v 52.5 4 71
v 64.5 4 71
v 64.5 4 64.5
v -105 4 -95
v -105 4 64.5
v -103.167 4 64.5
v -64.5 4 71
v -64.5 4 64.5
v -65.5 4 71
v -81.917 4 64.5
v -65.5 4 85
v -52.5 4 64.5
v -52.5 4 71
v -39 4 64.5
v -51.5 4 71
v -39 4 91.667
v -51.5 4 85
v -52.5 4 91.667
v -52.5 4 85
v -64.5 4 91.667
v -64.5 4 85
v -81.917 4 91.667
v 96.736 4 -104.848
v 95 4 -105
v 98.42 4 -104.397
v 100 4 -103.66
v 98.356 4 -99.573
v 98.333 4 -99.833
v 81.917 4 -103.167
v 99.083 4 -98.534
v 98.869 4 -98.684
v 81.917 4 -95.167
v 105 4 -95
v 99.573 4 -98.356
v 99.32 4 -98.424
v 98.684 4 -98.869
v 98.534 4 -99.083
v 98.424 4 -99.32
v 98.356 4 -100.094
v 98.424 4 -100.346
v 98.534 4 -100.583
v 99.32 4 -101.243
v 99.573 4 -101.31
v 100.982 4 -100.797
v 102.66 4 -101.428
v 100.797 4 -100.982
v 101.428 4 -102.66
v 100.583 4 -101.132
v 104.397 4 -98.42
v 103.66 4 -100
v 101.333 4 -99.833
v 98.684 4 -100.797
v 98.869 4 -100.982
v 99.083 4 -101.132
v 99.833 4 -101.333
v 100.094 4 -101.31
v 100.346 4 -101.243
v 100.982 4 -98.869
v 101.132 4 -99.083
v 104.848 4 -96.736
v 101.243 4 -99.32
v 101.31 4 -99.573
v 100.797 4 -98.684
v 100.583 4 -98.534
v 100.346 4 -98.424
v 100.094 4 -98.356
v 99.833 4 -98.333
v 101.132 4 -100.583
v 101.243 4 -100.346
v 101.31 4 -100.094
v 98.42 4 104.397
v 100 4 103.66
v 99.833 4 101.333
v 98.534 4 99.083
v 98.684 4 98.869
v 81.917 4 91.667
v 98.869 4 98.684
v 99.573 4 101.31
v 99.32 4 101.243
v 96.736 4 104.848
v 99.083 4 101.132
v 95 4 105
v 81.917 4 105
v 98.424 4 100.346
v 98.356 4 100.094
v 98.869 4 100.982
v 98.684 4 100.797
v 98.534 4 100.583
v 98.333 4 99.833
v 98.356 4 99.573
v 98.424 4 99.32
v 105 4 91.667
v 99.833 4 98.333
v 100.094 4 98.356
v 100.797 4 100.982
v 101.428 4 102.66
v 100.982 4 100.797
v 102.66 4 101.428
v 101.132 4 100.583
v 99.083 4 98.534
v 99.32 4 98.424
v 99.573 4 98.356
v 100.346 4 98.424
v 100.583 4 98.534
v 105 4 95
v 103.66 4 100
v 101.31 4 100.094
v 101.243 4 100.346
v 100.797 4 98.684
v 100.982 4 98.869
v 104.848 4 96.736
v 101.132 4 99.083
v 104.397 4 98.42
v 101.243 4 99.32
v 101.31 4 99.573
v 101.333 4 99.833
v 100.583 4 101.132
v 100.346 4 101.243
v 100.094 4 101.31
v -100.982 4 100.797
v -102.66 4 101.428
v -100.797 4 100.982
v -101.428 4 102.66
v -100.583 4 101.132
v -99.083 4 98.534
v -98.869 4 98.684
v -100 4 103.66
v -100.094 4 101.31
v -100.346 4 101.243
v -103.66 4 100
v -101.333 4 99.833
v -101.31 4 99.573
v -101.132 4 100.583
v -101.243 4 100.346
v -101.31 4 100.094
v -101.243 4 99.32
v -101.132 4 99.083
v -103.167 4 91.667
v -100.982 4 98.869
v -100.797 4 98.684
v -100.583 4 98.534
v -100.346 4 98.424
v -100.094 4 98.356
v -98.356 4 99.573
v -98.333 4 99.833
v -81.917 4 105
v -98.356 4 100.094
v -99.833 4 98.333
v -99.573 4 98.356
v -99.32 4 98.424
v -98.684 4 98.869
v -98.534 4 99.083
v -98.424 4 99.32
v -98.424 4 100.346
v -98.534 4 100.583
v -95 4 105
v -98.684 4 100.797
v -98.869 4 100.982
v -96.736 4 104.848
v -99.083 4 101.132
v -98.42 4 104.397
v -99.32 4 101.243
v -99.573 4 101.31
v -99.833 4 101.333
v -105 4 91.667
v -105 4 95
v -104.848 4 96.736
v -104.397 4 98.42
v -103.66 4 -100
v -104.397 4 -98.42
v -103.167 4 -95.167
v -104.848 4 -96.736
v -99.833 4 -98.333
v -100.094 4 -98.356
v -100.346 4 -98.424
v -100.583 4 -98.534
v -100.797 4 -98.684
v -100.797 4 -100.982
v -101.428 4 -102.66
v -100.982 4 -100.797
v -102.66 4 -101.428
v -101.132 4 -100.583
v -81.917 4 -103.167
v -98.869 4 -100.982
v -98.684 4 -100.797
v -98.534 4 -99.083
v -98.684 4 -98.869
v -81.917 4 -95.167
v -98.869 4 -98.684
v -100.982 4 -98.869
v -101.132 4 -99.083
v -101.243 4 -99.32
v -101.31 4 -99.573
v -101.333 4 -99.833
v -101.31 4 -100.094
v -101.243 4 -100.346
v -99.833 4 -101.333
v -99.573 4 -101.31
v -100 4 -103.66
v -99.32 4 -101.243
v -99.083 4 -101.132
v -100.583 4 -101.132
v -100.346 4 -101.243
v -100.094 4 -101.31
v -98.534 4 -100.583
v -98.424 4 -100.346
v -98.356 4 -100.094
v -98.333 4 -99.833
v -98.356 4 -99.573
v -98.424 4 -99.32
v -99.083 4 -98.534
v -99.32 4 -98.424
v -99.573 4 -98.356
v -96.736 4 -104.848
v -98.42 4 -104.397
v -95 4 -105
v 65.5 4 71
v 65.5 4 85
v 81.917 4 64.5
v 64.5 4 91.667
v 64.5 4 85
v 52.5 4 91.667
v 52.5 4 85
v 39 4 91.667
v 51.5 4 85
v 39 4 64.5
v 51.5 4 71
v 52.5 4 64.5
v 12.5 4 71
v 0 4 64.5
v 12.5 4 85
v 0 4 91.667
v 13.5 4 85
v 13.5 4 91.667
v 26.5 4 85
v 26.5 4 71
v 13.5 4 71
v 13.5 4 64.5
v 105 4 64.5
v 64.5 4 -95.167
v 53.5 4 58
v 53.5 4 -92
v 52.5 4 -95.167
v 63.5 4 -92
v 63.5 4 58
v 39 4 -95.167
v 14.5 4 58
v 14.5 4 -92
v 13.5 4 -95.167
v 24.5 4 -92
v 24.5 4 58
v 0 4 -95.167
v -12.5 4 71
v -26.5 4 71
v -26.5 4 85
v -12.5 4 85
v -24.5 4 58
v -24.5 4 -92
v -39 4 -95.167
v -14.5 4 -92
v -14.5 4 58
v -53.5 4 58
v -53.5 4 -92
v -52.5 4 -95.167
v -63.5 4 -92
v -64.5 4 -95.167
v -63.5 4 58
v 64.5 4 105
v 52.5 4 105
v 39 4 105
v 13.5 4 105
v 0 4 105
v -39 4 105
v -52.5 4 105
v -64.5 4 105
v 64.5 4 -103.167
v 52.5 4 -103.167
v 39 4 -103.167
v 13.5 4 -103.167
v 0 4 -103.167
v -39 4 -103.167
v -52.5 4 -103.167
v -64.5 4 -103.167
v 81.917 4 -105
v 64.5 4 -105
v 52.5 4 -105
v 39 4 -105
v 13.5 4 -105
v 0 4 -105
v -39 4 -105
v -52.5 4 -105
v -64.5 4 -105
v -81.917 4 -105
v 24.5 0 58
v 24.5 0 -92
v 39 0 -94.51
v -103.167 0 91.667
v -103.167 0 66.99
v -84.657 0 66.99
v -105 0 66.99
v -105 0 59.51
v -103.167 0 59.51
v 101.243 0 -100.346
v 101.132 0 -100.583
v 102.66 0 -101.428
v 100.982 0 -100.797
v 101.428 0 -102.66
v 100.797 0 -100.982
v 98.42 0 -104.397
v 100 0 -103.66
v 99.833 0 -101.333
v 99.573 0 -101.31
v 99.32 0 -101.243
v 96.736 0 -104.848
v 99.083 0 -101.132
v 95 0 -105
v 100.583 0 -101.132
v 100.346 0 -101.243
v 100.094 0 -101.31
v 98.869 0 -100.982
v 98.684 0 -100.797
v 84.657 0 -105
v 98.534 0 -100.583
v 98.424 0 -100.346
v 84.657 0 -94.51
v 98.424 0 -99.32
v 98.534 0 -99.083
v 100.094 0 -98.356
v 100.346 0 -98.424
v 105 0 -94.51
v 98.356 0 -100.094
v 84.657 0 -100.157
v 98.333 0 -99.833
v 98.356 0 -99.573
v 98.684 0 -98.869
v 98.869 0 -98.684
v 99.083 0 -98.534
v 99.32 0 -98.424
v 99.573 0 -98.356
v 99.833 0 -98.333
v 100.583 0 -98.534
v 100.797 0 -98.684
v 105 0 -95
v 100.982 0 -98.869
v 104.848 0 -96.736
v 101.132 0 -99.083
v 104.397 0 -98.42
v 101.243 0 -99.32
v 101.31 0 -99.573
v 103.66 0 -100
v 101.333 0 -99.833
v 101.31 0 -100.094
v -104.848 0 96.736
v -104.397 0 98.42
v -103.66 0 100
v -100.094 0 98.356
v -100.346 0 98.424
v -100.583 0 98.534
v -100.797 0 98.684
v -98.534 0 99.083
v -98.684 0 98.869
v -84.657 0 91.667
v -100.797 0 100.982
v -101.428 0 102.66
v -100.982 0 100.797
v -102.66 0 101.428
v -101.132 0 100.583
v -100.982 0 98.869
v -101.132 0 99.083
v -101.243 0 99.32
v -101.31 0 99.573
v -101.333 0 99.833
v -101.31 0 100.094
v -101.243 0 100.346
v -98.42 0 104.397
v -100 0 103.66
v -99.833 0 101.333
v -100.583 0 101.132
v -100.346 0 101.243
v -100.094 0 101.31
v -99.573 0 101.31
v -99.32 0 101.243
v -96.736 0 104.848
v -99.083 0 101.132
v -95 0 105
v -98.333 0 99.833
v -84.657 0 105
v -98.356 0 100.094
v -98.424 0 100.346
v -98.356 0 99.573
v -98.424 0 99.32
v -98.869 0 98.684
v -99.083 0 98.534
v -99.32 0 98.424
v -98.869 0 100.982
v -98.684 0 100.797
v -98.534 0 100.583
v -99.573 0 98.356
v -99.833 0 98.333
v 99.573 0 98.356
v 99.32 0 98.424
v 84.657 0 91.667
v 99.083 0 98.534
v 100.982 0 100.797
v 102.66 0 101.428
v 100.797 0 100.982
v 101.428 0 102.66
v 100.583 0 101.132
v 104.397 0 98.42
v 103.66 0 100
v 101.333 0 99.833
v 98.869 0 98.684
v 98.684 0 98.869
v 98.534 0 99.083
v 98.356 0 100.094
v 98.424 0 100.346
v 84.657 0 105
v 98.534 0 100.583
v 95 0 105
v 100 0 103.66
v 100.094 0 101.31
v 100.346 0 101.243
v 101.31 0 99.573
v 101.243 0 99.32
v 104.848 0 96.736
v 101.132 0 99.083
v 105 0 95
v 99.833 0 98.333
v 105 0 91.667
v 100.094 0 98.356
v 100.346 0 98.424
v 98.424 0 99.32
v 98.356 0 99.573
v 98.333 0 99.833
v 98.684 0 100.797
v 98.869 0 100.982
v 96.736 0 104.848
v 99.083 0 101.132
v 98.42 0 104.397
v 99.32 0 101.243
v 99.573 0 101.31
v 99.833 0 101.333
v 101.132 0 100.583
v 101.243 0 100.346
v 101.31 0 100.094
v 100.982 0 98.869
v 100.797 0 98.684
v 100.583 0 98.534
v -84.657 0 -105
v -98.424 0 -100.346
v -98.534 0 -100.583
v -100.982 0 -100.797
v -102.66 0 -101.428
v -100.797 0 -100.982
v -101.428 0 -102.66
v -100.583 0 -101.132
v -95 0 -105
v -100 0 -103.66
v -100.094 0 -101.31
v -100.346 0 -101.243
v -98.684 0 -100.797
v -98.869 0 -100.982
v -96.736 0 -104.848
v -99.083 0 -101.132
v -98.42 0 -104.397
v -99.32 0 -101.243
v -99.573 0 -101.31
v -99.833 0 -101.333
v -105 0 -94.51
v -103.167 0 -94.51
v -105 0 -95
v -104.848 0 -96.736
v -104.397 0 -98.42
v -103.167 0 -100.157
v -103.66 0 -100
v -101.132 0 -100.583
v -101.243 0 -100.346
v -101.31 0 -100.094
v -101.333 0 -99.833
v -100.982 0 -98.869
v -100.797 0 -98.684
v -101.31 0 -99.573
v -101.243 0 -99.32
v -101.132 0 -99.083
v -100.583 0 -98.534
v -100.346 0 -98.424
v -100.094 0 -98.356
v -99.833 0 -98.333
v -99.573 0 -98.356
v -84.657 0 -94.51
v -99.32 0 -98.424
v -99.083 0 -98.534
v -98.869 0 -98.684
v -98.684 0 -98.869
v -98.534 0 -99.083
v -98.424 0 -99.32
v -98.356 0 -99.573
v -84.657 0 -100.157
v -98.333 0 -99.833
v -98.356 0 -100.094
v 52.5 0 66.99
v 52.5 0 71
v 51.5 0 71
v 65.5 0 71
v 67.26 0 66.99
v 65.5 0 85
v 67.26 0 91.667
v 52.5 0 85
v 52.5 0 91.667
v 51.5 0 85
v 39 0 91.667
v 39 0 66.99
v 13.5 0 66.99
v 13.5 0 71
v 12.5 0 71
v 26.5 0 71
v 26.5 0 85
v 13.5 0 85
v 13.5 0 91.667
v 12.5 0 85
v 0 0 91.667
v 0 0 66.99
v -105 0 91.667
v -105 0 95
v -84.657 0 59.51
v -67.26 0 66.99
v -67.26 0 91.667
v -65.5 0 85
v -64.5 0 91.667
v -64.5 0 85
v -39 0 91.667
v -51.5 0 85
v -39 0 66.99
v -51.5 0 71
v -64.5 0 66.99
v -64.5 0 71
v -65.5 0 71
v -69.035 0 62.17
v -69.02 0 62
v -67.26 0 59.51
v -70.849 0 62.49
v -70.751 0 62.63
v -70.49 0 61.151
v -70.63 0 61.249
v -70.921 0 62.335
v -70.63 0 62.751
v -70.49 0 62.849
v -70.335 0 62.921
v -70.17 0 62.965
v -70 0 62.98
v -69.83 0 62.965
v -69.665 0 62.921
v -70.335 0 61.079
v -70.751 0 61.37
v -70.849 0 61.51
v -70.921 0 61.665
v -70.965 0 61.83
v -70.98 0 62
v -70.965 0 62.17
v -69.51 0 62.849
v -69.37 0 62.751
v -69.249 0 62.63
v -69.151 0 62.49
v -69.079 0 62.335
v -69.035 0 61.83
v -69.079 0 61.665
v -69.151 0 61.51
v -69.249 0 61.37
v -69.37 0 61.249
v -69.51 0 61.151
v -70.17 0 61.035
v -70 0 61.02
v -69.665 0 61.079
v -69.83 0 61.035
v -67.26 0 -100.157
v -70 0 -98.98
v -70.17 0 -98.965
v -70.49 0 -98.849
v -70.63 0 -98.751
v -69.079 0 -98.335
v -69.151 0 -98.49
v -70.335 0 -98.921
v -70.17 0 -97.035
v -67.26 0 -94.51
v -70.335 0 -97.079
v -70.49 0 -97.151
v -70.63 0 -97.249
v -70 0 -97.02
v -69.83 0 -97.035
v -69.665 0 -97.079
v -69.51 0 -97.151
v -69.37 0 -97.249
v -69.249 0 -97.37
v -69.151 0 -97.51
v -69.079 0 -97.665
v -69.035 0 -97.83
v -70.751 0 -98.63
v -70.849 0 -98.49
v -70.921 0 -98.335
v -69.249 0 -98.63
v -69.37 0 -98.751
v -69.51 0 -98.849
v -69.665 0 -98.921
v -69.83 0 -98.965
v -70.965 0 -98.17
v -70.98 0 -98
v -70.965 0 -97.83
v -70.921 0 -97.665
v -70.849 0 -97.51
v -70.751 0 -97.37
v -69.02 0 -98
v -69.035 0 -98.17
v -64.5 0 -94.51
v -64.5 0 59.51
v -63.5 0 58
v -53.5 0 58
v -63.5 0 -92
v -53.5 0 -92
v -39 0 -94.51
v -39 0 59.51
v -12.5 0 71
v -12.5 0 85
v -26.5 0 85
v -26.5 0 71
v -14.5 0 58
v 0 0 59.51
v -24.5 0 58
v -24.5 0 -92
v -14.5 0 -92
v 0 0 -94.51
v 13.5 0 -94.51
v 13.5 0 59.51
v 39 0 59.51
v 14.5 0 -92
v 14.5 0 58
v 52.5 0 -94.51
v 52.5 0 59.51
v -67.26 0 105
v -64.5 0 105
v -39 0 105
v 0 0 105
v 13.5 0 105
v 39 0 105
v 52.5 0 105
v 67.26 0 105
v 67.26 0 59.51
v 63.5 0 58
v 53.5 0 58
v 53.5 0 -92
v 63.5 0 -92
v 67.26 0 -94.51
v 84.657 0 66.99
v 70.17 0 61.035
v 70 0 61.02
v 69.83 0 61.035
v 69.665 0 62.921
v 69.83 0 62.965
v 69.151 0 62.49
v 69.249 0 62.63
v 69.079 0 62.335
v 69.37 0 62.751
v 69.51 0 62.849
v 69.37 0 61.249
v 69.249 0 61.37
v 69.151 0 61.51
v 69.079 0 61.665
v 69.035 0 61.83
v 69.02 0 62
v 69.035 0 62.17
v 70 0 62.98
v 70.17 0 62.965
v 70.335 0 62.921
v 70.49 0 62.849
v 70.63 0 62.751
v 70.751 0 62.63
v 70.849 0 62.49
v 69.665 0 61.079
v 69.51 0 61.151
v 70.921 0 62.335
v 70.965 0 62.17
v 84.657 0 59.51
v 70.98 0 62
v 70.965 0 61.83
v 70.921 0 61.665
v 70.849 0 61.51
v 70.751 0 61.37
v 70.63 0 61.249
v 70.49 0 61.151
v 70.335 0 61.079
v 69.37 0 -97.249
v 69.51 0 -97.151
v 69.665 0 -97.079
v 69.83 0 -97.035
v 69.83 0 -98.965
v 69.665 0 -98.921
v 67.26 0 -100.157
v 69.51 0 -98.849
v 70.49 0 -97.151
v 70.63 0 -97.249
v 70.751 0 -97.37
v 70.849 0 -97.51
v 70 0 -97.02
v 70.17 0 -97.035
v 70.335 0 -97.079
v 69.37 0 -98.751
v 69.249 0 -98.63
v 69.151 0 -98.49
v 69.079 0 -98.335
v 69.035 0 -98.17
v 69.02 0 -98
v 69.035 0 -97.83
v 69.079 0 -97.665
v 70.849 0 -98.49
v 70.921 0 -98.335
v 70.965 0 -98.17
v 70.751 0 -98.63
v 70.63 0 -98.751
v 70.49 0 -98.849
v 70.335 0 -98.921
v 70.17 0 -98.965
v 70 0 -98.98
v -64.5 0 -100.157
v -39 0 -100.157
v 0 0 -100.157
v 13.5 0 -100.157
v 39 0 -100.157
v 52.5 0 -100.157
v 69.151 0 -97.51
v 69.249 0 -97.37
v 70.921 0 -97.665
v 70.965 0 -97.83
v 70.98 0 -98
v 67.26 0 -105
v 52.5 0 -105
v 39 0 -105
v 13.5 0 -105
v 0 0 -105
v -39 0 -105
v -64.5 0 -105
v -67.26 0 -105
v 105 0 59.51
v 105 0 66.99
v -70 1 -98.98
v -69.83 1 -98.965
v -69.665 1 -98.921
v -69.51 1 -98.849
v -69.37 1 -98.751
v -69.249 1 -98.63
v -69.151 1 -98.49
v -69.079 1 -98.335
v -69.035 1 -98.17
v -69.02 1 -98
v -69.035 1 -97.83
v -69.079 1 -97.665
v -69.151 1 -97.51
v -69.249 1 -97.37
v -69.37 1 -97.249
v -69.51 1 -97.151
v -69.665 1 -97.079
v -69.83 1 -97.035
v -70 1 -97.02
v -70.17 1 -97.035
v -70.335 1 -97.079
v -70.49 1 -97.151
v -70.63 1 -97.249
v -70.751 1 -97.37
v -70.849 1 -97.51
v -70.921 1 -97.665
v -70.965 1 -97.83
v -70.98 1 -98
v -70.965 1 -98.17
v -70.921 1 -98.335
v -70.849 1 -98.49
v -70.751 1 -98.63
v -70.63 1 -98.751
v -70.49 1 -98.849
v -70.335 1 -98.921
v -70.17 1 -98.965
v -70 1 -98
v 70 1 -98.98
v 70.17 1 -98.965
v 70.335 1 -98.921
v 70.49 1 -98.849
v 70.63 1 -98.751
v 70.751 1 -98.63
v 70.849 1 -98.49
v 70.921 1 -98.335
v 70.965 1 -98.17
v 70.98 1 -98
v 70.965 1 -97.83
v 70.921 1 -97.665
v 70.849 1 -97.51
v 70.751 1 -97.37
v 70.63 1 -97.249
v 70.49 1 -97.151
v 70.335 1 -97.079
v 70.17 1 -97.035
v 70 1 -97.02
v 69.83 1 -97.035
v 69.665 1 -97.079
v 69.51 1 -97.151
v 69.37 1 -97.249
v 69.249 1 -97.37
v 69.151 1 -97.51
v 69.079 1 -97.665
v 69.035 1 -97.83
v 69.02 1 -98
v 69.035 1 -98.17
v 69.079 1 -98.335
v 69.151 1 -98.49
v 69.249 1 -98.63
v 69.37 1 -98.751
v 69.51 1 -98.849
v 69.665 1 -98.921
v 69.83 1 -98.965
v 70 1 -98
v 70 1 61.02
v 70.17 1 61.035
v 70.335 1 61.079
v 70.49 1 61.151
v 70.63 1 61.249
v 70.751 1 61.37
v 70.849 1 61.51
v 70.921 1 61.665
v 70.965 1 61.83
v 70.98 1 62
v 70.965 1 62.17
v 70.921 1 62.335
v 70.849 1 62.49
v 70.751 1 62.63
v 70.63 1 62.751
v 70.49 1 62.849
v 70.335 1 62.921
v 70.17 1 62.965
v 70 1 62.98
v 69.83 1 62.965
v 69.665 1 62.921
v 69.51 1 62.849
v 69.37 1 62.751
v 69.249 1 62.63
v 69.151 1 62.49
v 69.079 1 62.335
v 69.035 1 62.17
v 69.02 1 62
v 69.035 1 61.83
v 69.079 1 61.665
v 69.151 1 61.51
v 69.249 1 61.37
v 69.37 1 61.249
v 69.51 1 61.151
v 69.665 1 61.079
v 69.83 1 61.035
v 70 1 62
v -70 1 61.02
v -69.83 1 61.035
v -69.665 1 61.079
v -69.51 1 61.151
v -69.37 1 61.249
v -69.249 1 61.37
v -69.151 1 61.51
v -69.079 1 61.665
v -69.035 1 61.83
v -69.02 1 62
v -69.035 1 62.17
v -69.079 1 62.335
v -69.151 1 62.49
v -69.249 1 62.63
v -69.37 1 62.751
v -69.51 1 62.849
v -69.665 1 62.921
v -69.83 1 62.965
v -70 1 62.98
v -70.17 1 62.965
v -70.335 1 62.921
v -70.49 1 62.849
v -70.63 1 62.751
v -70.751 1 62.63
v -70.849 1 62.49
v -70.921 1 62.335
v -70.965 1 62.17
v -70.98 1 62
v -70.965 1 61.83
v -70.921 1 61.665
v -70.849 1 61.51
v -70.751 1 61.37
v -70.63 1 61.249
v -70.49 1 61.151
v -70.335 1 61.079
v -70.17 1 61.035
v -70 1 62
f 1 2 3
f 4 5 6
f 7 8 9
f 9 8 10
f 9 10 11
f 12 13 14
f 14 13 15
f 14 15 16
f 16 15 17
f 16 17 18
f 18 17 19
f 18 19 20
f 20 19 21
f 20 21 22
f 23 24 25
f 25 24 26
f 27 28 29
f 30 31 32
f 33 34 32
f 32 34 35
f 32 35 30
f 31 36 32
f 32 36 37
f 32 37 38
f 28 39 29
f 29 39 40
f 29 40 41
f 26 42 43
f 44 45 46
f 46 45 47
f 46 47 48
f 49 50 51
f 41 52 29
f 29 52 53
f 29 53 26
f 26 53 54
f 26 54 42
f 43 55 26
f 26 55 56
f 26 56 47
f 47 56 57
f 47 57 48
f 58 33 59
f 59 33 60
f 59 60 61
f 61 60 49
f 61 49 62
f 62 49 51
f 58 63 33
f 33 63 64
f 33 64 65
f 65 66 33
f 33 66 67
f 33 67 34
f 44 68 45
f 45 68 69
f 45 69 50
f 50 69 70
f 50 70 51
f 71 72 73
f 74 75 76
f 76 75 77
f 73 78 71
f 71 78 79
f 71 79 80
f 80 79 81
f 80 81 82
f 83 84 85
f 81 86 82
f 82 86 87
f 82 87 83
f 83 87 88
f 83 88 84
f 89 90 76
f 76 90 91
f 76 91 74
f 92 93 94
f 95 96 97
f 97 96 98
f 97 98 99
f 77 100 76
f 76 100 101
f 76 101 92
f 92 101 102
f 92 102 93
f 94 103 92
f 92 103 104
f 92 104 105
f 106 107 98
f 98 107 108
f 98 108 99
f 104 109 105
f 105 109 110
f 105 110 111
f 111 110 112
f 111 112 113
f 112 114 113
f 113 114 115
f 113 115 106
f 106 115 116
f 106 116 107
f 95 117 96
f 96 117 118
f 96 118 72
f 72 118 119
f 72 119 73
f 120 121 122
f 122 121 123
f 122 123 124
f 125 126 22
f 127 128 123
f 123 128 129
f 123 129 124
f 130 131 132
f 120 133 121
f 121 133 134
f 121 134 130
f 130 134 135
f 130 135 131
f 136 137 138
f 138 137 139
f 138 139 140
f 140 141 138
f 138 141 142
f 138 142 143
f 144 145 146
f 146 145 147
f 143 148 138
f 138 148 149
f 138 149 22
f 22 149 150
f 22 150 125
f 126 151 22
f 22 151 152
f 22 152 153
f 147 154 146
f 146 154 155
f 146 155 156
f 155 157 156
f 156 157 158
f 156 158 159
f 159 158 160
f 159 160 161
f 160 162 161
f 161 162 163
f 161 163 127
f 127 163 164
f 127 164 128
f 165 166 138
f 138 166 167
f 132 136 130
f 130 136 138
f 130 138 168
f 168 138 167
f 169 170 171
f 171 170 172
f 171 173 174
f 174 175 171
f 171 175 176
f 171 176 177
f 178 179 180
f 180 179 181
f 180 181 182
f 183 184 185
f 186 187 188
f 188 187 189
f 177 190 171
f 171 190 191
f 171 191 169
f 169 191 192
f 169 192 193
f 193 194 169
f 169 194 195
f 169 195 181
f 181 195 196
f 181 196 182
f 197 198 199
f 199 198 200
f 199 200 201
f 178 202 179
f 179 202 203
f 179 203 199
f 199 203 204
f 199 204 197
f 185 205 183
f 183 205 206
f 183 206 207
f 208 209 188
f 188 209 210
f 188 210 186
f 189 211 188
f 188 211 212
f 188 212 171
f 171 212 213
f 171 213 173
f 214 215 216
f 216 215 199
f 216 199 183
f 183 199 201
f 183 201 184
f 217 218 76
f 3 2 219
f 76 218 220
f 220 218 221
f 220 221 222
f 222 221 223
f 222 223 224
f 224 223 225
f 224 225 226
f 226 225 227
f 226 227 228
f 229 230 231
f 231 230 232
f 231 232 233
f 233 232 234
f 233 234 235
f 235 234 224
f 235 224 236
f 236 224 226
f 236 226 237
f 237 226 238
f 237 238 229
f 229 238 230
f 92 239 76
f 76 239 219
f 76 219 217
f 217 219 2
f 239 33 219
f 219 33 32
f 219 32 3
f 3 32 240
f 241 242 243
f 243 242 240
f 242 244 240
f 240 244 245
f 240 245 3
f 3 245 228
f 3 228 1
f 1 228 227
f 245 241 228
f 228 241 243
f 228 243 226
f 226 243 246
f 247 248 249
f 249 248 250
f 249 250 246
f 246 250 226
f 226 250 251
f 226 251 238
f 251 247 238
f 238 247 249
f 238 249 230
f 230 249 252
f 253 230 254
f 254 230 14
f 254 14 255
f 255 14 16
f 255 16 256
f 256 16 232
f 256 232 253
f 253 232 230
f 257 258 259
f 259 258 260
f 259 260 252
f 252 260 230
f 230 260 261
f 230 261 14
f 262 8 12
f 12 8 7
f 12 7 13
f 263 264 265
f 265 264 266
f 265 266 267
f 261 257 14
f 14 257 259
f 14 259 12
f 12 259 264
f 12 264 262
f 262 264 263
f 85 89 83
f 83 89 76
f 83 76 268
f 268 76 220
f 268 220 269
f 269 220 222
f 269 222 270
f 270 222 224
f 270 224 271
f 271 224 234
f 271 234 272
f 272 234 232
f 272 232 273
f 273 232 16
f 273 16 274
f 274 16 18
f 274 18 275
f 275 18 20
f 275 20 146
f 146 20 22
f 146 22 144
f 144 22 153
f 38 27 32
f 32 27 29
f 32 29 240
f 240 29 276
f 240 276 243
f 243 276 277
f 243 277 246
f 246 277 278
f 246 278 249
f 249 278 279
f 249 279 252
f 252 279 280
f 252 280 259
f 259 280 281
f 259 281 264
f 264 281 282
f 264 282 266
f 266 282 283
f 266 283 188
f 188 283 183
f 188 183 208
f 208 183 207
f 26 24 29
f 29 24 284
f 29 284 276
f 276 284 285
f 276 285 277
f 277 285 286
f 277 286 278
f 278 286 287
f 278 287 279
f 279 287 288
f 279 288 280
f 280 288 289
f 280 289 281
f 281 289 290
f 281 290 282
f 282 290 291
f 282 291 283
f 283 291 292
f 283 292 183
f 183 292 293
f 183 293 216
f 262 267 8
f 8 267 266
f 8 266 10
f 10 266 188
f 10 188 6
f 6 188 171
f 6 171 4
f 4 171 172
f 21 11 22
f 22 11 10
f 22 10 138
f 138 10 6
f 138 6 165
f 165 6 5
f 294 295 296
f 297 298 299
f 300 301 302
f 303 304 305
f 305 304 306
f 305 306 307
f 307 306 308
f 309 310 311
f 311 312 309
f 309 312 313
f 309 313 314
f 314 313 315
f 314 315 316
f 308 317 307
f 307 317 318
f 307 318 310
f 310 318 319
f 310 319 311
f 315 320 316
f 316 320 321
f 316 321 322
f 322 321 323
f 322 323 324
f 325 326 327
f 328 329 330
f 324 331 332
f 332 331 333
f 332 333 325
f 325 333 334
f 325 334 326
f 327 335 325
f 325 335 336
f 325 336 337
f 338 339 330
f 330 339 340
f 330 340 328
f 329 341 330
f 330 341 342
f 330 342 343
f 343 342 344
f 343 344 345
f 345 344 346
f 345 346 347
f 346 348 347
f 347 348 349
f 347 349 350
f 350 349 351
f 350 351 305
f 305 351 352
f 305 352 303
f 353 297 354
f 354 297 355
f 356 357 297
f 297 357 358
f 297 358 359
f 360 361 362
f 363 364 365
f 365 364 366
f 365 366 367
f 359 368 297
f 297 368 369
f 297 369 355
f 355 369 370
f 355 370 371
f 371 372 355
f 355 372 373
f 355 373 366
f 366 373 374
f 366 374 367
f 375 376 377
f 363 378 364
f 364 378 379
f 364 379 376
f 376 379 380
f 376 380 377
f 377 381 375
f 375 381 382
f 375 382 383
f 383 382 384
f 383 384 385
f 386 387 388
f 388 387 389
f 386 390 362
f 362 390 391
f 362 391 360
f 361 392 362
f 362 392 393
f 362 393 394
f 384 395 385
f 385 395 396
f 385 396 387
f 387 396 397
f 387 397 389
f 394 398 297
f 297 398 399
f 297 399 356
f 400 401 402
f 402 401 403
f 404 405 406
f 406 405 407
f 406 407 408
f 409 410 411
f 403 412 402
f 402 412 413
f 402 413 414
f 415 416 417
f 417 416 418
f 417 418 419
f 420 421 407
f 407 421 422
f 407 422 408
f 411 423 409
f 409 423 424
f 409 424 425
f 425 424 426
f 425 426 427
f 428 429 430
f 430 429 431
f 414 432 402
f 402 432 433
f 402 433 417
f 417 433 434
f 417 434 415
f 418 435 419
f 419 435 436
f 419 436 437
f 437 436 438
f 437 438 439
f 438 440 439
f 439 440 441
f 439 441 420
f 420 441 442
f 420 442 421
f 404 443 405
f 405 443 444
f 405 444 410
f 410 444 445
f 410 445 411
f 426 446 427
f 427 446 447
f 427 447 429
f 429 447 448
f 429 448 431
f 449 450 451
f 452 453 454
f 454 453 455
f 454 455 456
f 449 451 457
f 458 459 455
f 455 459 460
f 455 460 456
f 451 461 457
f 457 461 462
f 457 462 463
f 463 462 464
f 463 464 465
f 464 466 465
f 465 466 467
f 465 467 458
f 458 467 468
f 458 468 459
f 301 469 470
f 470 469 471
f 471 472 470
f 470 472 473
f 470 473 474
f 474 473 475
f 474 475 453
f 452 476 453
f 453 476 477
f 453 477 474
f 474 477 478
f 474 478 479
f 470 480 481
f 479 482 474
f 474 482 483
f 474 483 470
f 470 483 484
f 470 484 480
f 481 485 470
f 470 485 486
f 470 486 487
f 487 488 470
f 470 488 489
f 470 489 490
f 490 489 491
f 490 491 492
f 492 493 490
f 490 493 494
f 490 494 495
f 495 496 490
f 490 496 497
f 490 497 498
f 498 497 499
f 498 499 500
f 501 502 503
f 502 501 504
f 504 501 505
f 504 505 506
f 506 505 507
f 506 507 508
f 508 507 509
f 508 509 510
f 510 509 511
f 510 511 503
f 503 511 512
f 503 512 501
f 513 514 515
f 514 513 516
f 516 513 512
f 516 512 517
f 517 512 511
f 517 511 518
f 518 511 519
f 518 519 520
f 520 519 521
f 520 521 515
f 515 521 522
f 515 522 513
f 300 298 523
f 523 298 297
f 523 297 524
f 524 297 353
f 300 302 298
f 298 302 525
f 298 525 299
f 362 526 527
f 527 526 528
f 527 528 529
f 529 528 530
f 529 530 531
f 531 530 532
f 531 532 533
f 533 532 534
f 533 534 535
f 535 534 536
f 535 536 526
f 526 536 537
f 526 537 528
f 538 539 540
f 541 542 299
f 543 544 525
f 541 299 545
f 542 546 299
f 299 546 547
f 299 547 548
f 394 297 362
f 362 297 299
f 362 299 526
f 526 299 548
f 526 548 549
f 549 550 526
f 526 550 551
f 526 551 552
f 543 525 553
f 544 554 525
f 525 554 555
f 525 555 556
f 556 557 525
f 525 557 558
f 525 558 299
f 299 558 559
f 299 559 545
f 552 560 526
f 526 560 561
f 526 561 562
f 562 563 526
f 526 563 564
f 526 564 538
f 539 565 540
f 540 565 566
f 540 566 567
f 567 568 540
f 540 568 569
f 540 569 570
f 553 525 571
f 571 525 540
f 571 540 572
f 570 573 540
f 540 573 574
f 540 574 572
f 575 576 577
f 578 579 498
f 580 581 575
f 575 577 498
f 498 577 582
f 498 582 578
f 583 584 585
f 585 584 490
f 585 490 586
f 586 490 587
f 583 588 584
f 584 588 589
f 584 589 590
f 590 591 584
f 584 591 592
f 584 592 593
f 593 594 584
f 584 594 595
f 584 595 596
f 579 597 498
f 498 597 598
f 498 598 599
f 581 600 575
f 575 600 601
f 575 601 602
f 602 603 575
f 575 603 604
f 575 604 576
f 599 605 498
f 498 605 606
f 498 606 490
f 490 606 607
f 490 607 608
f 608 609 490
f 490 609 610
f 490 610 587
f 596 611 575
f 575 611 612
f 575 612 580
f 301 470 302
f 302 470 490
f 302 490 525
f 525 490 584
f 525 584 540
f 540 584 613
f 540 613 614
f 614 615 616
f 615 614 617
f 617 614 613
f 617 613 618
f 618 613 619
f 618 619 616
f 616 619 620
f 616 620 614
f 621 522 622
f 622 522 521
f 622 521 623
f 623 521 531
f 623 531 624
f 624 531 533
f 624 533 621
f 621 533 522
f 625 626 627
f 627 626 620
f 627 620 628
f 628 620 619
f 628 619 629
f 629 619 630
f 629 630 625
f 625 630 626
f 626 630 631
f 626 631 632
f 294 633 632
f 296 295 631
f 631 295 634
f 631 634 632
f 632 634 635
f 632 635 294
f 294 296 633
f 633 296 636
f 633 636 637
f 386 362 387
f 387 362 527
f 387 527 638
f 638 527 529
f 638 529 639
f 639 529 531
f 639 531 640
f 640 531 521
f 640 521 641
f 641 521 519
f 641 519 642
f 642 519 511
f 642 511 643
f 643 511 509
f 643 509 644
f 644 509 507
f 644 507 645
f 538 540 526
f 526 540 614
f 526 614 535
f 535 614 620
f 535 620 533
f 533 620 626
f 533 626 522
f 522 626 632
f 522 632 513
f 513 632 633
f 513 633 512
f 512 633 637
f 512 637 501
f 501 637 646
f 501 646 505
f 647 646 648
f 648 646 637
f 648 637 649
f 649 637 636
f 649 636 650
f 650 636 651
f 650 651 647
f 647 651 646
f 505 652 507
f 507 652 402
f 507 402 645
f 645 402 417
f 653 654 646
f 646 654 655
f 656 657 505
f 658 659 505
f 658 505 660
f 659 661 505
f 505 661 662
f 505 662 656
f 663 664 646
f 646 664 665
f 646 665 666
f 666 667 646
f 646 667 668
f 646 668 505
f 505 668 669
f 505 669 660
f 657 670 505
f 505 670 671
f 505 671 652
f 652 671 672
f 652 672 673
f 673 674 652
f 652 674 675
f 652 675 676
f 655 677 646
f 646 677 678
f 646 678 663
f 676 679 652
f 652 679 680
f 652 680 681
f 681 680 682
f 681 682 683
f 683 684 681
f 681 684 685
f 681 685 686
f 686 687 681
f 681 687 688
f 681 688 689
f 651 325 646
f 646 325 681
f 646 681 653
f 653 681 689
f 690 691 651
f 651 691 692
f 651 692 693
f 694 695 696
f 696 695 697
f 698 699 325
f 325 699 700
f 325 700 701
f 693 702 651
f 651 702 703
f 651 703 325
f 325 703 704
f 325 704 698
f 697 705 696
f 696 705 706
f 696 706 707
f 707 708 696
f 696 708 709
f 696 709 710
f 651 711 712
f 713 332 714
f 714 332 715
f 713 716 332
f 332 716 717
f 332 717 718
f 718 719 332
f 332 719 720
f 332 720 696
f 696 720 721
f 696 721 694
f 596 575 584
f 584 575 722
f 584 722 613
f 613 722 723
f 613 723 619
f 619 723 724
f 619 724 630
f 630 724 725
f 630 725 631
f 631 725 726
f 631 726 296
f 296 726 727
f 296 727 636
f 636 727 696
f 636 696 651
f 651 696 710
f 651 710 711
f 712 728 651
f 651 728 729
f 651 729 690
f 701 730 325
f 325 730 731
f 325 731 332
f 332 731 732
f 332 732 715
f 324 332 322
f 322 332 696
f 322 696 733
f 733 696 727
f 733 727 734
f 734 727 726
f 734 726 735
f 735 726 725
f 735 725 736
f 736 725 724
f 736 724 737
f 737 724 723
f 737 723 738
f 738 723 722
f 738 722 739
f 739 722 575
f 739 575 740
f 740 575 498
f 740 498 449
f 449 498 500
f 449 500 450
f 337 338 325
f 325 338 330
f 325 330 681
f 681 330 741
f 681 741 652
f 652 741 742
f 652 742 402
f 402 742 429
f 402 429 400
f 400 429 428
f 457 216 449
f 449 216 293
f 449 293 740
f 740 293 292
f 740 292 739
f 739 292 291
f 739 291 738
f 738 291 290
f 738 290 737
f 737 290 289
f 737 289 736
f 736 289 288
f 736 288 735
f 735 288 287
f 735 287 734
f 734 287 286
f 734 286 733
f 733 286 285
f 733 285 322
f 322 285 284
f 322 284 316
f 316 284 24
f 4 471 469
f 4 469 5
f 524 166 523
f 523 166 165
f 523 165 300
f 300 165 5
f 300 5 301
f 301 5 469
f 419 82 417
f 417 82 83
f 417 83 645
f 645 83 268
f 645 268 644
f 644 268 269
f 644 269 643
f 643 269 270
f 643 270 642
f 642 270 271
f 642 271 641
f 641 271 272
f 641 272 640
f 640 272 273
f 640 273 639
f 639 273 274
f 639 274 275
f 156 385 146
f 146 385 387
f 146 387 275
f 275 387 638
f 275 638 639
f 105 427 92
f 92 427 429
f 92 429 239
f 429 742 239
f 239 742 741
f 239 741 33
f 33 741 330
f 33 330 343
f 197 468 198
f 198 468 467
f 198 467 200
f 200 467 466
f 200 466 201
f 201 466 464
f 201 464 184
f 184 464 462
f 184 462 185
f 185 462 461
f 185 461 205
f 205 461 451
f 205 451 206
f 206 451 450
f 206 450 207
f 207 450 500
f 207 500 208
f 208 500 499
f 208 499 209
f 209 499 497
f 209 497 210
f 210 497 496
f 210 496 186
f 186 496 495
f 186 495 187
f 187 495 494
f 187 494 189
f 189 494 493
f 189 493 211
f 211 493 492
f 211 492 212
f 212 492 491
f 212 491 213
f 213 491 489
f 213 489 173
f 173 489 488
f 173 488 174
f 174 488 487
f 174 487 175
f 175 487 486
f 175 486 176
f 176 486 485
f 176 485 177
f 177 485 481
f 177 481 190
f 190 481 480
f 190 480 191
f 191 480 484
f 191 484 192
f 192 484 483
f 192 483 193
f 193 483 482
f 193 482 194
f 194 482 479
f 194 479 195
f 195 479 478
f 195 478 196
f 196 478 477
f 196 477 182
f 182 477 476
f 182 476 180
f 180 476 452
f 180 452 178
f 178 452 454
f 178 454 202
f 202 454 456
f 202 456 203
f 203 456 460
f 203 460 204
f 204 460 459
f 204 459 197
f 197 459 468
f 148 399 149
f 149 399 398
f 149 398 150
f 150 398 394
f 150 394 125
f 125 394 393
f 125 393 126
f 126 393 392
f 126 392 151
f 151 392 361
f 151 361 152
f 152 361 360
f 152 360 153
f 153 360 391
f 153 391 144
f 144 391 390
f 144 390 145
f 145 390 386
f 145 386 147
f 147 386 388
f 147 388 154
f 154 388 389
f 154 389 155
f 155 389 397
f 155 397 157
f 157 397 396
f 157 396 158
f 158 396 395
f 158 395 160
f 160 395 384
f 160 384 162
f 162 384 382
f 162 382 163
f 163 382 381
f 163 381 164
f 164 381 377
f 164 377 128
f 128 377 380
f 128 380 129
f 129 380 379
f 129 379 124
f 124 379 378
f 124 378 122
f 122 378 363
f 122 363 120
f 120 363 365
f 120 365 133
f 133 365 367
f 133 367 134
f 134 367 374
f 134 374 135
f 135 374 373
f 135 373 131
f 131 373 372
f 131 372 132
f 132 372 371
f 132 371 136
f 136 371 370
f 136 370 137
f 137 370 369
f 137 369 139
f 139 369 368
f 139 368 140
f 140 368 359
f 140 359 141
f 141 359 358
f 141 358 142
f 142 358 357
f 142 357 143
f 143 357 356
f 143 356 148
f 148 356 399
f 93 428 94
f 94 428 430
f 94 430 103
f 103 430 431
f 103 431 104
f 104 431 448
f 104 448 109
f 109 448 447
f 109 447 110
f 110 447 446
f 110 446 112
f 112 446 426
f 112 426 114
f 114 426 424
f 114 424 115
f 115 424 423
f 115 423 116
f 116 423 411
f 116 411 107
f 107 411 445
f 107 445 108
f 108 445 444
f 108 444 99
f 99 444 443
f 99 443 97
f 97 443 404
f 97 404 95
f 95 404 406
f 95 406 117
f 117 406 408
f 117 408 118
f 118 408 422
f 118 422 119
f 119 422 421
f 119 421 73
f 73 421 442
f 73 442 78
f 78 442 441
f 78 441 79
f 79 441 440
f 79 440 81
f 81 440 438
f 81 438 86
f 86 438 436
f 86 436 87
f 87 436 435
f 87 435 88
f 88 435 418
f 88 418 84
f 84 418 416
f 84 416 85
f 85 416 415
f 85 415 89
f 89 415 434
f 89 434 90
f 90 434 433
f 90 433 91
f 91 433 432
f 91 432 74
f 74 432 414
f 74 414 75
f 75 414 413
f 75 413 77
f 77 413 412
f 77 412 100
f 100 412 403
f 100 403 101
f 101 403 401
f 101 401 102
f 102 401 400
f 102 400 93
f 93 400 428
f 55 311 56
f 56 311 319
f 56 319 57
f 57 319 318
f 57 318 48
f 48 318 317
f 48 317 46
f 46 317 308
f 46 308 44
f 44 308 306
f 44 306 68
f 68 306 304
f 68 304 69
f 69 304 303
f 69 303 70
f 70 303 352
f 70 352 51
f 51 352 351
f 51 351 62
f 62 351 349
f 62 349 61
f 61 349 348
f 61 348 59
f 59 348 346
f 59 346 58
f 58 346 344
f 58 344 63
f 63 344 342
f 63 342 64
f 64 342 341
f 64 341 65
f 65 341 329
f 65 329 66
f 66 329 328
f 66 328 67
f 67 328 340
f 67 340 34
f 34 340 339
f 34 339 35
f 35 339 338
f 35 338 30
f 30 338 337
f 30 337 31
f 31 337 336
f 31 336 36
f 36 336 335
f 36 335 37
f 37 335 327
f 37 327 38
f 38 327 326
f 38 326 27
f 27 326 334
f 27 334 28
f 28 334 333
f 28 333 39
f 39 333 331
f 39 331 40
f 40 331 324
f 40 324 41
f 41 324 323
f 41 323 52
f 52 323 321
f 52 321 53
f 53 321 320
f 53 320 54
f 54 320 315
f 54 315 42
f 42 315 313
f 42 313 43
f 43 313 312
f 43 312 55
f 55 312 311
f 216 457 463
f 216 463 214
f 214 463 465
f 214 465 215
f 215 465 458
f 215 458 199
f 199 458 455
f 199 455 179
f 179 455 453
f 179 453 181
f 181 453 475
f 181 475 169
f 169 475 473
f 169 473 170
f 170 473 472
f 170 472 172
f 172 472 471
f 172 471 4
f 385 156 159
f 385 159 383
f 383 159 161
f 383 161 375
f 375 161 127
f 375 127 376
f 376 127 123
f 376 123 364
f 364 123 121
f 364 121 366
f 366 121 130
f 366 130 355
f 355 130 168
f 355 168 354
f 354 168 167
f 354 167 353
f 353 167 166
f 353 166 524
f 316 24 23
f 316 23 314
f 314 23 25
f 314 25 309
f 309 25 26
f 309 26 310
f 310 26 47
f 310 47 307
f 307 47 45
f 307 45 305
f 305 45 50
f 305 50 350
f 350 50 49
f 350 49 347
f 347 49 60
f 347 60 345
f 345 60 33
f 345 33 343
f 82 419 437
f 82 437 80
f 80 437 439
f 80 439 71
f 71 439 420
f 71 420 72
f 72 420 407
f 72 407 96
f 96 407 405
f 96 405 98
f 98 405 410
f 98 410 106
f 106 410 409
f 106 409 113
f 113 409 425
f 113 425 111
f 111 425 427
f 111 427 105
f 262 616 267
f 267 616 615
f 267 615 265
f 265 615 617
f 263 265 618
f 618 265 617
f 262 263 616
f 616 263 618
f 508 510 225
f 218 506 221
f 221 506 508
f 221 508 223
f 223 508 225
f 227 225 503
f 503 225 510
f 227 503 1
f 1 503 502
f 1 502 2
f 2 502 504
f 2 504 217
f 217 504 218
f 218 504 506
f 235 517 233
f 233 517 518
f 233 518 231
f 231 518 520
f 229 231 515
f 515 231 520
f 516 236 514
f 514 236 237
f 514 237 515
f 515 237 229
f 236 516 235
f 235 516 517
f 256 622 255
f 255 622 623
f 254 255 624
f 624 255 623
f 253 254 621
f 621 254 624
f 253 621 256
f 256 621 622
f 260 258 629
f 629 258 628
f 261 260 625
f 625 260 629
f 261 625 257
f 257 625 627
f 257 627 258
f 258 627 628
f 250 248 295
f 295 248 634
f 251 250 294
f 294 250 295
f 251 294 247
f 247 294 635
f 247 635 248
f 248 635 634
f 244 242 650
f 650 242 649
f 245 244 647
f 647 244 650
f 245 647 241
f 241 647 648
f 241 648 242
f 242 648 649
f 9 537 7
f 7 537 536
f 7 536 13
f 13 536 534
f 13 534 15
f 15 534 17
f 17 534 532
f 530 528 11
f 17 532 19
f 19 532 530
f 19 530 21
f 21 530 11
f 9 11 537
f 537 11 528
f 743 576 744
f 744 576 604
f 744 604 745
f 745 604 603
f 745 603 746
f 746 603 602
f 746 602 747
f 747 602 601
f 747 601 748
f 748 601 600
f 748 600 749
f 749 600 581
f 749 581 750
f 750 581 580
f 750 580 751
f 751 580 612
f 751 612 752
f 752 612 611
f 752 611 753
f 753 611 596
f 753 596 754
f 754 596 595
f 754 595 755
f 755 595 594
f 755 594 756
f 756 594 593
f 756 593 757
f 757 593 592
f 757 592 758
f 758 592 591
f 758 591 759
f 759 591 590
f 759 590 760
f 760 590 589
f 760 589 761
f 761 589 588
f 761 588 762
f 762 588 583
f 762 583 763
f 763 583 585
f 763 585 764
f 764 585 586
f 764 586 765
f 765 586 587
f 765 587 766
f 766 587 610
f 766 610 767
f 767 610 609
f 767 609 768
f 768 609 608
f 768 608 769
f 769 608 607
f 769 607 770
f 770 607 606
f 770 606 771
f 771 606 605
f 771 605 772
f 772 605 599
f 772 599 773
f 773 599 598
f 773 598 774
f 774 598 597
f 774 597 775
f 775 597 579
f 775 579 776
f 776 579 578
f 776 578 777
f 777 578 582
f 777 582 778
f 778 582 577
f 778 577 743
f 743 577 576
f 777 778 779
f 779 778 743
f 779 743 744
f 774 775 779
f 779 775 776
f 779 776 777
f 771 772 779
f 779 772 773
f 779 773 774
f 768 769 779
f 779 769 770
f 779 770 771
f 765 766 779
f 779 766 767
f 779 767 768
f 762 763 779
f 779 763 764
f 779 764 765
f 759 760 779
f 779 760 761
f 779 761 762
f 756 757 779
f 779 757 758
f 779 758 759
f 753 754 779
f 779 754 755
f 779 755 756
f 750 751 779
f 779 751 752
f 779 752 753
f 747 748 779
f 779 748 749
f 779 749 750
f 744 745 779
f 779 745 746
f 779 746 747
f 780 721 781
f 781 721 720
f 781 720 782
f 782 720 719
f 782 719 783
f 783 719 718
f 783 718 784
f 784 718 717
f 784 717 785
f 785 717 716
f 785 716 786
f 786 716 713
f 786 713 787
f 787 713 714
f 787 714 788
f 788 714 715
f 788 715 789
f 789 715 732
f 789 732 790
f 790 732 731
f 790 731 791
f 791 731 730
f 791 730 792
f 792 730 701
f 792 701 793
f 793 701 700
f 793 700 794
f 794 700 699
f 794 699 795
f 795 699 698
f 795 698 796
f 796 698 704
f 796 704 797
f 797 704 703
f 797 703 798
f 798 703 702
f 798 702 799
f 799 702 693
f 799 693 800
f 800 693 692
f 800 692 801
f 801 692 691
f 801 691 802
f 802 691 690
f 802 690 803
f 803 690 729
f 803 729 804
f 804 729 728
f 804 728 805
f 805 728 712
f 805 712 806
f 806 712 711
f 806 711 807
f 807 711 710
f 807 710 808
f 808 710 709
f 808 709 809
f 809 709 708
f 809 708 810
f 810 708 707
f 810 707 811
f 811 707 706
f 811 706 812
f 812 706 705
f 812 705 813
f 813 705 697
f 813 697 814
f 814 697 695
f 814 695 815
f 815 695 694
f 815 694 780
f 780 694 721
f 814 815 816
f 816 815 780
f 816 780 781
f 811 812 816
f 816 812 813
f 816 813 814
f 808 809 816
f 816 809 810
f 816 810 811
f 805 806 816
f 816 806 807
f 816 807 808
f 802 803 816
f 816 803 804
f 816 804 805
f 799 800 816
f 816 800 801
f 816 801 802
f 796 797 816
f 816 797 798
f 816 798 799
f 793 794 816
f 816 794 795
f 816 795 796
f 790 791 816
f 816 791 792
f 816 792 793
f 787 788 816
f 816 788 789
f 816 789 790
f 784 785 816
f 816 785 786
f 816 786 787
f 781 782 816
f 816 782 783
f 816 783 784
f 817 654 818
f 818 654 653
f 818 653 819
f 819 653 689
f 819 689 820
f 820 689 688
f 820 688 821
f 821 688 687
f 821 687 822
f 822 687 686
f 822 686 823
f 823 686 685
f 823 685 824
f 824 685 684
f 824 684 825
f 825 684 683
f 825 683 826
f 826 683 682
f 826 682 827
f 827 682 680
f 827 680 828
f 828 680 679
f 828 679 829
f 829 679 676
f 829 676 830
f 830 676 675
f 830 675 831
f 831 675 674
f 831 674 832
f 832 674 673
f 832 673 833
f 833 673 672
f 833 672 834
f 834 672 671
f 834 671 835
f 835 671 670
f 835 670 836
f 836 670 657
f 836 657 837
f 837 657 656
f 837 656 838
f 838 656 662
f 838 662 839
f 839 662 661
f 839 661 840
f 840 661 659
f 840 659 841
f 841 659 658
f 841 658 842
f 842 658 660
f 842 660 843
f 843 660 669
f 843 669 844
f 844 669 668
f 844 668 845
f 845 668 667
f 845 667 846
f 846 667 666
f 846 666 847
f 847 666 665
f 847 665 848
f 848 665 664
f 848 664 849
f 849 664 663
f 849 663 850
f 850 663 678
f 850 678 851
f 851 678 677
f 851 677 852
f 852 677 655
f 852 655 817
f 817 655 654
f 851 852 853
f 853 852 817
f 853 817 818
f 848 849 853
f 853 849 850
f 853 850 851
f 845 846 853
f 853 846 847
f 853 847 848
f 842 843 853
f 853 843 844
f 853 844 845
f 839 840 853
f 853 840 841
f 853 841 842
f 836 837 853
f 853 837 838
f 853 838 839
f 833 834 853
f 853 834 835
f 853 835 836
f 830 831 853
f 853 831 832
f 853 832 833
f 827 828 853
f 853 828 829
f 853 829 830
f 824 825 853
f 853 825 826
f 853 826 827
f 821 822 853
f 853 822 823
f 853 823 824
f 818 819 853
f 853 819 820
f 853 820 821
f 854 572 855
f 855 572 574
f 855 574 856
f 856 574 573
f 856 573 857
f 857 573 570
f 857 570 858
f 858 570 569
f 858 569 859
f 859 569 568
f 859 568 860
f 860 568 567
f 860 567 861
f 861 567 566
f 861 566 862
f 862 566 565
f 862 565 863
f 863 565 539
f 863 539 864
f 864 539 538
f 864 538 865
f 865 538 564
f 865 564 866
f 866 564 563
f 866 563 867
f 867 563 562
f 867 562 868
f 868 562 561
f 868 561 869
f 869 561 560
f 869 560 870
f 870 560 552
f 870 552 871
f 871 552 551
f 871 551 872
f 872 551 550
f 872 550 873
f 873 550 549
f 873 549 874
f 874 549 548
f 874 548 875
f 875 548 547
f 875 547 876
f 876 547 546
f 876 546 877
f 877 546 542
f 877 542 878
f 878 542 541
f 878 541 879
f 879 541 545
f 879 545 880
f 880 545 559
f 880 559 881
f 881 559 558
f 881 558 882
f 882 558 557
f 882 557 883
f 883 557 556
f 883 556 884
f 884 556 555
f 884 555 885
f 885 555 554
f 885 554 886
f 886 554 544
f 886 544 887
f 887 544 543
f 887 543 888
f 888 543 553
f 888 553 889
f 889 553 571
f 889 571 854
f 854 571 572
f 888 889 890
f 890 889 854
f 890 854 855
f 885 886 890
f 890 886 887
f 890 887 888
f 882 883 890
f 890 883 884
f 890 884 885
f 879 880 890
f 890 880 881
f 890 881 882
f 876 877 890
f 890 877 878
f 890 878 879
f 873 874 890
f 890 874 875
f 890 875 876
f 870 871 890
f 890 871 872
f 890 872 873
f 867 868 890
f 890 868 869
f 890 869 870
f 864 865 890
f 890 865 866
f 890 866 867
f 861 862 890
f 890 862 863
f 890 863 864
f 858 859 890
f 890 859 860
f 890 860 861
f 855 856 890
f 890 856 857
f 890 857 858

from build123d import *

# Parameters (mm, degrees)
SKETCH1_W          = 210
SKETCH1_H          = 210
MAINEXTRUDE_DEPTH  = 4
SKETCH1_6_R        = 1.5
SCREWHOLES_DEPTH   = 4
ROUNDEDCORNERS_R   = 10
SKETCH3_W          = 14
SKETCH3_H          = 14
SKETCH3_W_2        = 10
SKETCH3_H_2        = 150
CUTOUTS_DEPTH      = 10
SKETCH6_R          = 0.98
CUT_EXTRUDE1_DEPTH = 1


with BuildPart() as part:
    # Sketch1 → MainExtrude (new body)
    with BuildSketch(Plane(origin=(0, 0, 0), x_dir=(1, 0, 0), z_dir=(0, 1, 0))):
        Rectangle(SKETCH1_W, SKETCH1_H)
    extrude(amount=MAINEXTRUDE_DEPTH)

    # Sketch1<6> → ScrewHoles (cut)
    with BuildSketch(Plane(origin=(0, 0, 0), x_dir=(1, 0, 0), z_dir=(0, 1, 0))):
        with Locations((-99.833273811, 99.833273811)):
            Circle(SKETCH1_6_R)
        with Locations((-99.833273811, -99.833273811)):
            Circle(SKETCH1_6_R)
        with Locations((99.833273811, -99.833273811)):
            Circle(SKETCH1_6_R)
        with Locations((99.833273811, 99.833273811)):
            Circle(SKETCH1_6_R)
    extrude(amount=SCREWHOLES_DEPTH, mode=Mode.SUBTRACT)

    # RoundedCorners
    roundedcorners_edges = [part.edges().sort_by_distance(p)[0] for p in [
        (-105, 2, -105),
        (-105, 2, 105),
        (105, 2, 105),
        (105, 2, -105),
    ]]
    fillet(roundedcorners_edges, radius=ROUNDEDCORNERS_R)

    # Sketch3 → Cutouts (cut)
    with BuildSketch(Plane(origin=(0, 4, 0), x_dir=(1, 0, 0), z_dir=(0, 1, 0))):
        with Locations((-58.5, -78)):
            Rectangle(SKETCH3_W, SKETCH3_H)
        with Locations((-19.5, -78)):
            Rectangle(SKETCH3_W, SKETCH3_H)
        with Locations((19.5, -78)):
            Rectangle(SKETCH3_W, SKETCH3_H)
        with Locations((58.5, -78)):
            Rectangle(SKETCH3_W, SKETCH3_H)
        with Locations((-19.5, 17)):
            Rectangle(SKETCH3_W_2, SKETCH3_H_2)
        with Locations((-58.5, 17)):
            Rectangle(SKETCH3_W_2, SKETCH3_H_2)
        with Locations((19.5, 17)):
            Rectangle(SKETCH3_W_2, SKETCH3_H_2)
        with Locations((58.5, 17)):
            Rectangle(SKETCH3_W_2, SKETCH3_H_2)
    extrude(amount=-CUTOUTS_DEPTH, mode=Mode.SUBTRACT)

    # Sketch6 → Cut-Extrude1 (cut)
    with BuildSketch(Plane.XZ):
        with Locations((-70, 62)):
            Circle(SKETCH6_R)
        with Locations((70, 62)):
            Circle(SKETCH6_R)
        with Locations((70, -98)):
            Circle(SKETCH6_R)
        with Locations((-70, -98)):
            Circle(SKETCH6_R)
    extrude(amount=-CUT_EXTRUDE1_DEPTH, mode=Mode.SUBTRACT)


solid = part.part
